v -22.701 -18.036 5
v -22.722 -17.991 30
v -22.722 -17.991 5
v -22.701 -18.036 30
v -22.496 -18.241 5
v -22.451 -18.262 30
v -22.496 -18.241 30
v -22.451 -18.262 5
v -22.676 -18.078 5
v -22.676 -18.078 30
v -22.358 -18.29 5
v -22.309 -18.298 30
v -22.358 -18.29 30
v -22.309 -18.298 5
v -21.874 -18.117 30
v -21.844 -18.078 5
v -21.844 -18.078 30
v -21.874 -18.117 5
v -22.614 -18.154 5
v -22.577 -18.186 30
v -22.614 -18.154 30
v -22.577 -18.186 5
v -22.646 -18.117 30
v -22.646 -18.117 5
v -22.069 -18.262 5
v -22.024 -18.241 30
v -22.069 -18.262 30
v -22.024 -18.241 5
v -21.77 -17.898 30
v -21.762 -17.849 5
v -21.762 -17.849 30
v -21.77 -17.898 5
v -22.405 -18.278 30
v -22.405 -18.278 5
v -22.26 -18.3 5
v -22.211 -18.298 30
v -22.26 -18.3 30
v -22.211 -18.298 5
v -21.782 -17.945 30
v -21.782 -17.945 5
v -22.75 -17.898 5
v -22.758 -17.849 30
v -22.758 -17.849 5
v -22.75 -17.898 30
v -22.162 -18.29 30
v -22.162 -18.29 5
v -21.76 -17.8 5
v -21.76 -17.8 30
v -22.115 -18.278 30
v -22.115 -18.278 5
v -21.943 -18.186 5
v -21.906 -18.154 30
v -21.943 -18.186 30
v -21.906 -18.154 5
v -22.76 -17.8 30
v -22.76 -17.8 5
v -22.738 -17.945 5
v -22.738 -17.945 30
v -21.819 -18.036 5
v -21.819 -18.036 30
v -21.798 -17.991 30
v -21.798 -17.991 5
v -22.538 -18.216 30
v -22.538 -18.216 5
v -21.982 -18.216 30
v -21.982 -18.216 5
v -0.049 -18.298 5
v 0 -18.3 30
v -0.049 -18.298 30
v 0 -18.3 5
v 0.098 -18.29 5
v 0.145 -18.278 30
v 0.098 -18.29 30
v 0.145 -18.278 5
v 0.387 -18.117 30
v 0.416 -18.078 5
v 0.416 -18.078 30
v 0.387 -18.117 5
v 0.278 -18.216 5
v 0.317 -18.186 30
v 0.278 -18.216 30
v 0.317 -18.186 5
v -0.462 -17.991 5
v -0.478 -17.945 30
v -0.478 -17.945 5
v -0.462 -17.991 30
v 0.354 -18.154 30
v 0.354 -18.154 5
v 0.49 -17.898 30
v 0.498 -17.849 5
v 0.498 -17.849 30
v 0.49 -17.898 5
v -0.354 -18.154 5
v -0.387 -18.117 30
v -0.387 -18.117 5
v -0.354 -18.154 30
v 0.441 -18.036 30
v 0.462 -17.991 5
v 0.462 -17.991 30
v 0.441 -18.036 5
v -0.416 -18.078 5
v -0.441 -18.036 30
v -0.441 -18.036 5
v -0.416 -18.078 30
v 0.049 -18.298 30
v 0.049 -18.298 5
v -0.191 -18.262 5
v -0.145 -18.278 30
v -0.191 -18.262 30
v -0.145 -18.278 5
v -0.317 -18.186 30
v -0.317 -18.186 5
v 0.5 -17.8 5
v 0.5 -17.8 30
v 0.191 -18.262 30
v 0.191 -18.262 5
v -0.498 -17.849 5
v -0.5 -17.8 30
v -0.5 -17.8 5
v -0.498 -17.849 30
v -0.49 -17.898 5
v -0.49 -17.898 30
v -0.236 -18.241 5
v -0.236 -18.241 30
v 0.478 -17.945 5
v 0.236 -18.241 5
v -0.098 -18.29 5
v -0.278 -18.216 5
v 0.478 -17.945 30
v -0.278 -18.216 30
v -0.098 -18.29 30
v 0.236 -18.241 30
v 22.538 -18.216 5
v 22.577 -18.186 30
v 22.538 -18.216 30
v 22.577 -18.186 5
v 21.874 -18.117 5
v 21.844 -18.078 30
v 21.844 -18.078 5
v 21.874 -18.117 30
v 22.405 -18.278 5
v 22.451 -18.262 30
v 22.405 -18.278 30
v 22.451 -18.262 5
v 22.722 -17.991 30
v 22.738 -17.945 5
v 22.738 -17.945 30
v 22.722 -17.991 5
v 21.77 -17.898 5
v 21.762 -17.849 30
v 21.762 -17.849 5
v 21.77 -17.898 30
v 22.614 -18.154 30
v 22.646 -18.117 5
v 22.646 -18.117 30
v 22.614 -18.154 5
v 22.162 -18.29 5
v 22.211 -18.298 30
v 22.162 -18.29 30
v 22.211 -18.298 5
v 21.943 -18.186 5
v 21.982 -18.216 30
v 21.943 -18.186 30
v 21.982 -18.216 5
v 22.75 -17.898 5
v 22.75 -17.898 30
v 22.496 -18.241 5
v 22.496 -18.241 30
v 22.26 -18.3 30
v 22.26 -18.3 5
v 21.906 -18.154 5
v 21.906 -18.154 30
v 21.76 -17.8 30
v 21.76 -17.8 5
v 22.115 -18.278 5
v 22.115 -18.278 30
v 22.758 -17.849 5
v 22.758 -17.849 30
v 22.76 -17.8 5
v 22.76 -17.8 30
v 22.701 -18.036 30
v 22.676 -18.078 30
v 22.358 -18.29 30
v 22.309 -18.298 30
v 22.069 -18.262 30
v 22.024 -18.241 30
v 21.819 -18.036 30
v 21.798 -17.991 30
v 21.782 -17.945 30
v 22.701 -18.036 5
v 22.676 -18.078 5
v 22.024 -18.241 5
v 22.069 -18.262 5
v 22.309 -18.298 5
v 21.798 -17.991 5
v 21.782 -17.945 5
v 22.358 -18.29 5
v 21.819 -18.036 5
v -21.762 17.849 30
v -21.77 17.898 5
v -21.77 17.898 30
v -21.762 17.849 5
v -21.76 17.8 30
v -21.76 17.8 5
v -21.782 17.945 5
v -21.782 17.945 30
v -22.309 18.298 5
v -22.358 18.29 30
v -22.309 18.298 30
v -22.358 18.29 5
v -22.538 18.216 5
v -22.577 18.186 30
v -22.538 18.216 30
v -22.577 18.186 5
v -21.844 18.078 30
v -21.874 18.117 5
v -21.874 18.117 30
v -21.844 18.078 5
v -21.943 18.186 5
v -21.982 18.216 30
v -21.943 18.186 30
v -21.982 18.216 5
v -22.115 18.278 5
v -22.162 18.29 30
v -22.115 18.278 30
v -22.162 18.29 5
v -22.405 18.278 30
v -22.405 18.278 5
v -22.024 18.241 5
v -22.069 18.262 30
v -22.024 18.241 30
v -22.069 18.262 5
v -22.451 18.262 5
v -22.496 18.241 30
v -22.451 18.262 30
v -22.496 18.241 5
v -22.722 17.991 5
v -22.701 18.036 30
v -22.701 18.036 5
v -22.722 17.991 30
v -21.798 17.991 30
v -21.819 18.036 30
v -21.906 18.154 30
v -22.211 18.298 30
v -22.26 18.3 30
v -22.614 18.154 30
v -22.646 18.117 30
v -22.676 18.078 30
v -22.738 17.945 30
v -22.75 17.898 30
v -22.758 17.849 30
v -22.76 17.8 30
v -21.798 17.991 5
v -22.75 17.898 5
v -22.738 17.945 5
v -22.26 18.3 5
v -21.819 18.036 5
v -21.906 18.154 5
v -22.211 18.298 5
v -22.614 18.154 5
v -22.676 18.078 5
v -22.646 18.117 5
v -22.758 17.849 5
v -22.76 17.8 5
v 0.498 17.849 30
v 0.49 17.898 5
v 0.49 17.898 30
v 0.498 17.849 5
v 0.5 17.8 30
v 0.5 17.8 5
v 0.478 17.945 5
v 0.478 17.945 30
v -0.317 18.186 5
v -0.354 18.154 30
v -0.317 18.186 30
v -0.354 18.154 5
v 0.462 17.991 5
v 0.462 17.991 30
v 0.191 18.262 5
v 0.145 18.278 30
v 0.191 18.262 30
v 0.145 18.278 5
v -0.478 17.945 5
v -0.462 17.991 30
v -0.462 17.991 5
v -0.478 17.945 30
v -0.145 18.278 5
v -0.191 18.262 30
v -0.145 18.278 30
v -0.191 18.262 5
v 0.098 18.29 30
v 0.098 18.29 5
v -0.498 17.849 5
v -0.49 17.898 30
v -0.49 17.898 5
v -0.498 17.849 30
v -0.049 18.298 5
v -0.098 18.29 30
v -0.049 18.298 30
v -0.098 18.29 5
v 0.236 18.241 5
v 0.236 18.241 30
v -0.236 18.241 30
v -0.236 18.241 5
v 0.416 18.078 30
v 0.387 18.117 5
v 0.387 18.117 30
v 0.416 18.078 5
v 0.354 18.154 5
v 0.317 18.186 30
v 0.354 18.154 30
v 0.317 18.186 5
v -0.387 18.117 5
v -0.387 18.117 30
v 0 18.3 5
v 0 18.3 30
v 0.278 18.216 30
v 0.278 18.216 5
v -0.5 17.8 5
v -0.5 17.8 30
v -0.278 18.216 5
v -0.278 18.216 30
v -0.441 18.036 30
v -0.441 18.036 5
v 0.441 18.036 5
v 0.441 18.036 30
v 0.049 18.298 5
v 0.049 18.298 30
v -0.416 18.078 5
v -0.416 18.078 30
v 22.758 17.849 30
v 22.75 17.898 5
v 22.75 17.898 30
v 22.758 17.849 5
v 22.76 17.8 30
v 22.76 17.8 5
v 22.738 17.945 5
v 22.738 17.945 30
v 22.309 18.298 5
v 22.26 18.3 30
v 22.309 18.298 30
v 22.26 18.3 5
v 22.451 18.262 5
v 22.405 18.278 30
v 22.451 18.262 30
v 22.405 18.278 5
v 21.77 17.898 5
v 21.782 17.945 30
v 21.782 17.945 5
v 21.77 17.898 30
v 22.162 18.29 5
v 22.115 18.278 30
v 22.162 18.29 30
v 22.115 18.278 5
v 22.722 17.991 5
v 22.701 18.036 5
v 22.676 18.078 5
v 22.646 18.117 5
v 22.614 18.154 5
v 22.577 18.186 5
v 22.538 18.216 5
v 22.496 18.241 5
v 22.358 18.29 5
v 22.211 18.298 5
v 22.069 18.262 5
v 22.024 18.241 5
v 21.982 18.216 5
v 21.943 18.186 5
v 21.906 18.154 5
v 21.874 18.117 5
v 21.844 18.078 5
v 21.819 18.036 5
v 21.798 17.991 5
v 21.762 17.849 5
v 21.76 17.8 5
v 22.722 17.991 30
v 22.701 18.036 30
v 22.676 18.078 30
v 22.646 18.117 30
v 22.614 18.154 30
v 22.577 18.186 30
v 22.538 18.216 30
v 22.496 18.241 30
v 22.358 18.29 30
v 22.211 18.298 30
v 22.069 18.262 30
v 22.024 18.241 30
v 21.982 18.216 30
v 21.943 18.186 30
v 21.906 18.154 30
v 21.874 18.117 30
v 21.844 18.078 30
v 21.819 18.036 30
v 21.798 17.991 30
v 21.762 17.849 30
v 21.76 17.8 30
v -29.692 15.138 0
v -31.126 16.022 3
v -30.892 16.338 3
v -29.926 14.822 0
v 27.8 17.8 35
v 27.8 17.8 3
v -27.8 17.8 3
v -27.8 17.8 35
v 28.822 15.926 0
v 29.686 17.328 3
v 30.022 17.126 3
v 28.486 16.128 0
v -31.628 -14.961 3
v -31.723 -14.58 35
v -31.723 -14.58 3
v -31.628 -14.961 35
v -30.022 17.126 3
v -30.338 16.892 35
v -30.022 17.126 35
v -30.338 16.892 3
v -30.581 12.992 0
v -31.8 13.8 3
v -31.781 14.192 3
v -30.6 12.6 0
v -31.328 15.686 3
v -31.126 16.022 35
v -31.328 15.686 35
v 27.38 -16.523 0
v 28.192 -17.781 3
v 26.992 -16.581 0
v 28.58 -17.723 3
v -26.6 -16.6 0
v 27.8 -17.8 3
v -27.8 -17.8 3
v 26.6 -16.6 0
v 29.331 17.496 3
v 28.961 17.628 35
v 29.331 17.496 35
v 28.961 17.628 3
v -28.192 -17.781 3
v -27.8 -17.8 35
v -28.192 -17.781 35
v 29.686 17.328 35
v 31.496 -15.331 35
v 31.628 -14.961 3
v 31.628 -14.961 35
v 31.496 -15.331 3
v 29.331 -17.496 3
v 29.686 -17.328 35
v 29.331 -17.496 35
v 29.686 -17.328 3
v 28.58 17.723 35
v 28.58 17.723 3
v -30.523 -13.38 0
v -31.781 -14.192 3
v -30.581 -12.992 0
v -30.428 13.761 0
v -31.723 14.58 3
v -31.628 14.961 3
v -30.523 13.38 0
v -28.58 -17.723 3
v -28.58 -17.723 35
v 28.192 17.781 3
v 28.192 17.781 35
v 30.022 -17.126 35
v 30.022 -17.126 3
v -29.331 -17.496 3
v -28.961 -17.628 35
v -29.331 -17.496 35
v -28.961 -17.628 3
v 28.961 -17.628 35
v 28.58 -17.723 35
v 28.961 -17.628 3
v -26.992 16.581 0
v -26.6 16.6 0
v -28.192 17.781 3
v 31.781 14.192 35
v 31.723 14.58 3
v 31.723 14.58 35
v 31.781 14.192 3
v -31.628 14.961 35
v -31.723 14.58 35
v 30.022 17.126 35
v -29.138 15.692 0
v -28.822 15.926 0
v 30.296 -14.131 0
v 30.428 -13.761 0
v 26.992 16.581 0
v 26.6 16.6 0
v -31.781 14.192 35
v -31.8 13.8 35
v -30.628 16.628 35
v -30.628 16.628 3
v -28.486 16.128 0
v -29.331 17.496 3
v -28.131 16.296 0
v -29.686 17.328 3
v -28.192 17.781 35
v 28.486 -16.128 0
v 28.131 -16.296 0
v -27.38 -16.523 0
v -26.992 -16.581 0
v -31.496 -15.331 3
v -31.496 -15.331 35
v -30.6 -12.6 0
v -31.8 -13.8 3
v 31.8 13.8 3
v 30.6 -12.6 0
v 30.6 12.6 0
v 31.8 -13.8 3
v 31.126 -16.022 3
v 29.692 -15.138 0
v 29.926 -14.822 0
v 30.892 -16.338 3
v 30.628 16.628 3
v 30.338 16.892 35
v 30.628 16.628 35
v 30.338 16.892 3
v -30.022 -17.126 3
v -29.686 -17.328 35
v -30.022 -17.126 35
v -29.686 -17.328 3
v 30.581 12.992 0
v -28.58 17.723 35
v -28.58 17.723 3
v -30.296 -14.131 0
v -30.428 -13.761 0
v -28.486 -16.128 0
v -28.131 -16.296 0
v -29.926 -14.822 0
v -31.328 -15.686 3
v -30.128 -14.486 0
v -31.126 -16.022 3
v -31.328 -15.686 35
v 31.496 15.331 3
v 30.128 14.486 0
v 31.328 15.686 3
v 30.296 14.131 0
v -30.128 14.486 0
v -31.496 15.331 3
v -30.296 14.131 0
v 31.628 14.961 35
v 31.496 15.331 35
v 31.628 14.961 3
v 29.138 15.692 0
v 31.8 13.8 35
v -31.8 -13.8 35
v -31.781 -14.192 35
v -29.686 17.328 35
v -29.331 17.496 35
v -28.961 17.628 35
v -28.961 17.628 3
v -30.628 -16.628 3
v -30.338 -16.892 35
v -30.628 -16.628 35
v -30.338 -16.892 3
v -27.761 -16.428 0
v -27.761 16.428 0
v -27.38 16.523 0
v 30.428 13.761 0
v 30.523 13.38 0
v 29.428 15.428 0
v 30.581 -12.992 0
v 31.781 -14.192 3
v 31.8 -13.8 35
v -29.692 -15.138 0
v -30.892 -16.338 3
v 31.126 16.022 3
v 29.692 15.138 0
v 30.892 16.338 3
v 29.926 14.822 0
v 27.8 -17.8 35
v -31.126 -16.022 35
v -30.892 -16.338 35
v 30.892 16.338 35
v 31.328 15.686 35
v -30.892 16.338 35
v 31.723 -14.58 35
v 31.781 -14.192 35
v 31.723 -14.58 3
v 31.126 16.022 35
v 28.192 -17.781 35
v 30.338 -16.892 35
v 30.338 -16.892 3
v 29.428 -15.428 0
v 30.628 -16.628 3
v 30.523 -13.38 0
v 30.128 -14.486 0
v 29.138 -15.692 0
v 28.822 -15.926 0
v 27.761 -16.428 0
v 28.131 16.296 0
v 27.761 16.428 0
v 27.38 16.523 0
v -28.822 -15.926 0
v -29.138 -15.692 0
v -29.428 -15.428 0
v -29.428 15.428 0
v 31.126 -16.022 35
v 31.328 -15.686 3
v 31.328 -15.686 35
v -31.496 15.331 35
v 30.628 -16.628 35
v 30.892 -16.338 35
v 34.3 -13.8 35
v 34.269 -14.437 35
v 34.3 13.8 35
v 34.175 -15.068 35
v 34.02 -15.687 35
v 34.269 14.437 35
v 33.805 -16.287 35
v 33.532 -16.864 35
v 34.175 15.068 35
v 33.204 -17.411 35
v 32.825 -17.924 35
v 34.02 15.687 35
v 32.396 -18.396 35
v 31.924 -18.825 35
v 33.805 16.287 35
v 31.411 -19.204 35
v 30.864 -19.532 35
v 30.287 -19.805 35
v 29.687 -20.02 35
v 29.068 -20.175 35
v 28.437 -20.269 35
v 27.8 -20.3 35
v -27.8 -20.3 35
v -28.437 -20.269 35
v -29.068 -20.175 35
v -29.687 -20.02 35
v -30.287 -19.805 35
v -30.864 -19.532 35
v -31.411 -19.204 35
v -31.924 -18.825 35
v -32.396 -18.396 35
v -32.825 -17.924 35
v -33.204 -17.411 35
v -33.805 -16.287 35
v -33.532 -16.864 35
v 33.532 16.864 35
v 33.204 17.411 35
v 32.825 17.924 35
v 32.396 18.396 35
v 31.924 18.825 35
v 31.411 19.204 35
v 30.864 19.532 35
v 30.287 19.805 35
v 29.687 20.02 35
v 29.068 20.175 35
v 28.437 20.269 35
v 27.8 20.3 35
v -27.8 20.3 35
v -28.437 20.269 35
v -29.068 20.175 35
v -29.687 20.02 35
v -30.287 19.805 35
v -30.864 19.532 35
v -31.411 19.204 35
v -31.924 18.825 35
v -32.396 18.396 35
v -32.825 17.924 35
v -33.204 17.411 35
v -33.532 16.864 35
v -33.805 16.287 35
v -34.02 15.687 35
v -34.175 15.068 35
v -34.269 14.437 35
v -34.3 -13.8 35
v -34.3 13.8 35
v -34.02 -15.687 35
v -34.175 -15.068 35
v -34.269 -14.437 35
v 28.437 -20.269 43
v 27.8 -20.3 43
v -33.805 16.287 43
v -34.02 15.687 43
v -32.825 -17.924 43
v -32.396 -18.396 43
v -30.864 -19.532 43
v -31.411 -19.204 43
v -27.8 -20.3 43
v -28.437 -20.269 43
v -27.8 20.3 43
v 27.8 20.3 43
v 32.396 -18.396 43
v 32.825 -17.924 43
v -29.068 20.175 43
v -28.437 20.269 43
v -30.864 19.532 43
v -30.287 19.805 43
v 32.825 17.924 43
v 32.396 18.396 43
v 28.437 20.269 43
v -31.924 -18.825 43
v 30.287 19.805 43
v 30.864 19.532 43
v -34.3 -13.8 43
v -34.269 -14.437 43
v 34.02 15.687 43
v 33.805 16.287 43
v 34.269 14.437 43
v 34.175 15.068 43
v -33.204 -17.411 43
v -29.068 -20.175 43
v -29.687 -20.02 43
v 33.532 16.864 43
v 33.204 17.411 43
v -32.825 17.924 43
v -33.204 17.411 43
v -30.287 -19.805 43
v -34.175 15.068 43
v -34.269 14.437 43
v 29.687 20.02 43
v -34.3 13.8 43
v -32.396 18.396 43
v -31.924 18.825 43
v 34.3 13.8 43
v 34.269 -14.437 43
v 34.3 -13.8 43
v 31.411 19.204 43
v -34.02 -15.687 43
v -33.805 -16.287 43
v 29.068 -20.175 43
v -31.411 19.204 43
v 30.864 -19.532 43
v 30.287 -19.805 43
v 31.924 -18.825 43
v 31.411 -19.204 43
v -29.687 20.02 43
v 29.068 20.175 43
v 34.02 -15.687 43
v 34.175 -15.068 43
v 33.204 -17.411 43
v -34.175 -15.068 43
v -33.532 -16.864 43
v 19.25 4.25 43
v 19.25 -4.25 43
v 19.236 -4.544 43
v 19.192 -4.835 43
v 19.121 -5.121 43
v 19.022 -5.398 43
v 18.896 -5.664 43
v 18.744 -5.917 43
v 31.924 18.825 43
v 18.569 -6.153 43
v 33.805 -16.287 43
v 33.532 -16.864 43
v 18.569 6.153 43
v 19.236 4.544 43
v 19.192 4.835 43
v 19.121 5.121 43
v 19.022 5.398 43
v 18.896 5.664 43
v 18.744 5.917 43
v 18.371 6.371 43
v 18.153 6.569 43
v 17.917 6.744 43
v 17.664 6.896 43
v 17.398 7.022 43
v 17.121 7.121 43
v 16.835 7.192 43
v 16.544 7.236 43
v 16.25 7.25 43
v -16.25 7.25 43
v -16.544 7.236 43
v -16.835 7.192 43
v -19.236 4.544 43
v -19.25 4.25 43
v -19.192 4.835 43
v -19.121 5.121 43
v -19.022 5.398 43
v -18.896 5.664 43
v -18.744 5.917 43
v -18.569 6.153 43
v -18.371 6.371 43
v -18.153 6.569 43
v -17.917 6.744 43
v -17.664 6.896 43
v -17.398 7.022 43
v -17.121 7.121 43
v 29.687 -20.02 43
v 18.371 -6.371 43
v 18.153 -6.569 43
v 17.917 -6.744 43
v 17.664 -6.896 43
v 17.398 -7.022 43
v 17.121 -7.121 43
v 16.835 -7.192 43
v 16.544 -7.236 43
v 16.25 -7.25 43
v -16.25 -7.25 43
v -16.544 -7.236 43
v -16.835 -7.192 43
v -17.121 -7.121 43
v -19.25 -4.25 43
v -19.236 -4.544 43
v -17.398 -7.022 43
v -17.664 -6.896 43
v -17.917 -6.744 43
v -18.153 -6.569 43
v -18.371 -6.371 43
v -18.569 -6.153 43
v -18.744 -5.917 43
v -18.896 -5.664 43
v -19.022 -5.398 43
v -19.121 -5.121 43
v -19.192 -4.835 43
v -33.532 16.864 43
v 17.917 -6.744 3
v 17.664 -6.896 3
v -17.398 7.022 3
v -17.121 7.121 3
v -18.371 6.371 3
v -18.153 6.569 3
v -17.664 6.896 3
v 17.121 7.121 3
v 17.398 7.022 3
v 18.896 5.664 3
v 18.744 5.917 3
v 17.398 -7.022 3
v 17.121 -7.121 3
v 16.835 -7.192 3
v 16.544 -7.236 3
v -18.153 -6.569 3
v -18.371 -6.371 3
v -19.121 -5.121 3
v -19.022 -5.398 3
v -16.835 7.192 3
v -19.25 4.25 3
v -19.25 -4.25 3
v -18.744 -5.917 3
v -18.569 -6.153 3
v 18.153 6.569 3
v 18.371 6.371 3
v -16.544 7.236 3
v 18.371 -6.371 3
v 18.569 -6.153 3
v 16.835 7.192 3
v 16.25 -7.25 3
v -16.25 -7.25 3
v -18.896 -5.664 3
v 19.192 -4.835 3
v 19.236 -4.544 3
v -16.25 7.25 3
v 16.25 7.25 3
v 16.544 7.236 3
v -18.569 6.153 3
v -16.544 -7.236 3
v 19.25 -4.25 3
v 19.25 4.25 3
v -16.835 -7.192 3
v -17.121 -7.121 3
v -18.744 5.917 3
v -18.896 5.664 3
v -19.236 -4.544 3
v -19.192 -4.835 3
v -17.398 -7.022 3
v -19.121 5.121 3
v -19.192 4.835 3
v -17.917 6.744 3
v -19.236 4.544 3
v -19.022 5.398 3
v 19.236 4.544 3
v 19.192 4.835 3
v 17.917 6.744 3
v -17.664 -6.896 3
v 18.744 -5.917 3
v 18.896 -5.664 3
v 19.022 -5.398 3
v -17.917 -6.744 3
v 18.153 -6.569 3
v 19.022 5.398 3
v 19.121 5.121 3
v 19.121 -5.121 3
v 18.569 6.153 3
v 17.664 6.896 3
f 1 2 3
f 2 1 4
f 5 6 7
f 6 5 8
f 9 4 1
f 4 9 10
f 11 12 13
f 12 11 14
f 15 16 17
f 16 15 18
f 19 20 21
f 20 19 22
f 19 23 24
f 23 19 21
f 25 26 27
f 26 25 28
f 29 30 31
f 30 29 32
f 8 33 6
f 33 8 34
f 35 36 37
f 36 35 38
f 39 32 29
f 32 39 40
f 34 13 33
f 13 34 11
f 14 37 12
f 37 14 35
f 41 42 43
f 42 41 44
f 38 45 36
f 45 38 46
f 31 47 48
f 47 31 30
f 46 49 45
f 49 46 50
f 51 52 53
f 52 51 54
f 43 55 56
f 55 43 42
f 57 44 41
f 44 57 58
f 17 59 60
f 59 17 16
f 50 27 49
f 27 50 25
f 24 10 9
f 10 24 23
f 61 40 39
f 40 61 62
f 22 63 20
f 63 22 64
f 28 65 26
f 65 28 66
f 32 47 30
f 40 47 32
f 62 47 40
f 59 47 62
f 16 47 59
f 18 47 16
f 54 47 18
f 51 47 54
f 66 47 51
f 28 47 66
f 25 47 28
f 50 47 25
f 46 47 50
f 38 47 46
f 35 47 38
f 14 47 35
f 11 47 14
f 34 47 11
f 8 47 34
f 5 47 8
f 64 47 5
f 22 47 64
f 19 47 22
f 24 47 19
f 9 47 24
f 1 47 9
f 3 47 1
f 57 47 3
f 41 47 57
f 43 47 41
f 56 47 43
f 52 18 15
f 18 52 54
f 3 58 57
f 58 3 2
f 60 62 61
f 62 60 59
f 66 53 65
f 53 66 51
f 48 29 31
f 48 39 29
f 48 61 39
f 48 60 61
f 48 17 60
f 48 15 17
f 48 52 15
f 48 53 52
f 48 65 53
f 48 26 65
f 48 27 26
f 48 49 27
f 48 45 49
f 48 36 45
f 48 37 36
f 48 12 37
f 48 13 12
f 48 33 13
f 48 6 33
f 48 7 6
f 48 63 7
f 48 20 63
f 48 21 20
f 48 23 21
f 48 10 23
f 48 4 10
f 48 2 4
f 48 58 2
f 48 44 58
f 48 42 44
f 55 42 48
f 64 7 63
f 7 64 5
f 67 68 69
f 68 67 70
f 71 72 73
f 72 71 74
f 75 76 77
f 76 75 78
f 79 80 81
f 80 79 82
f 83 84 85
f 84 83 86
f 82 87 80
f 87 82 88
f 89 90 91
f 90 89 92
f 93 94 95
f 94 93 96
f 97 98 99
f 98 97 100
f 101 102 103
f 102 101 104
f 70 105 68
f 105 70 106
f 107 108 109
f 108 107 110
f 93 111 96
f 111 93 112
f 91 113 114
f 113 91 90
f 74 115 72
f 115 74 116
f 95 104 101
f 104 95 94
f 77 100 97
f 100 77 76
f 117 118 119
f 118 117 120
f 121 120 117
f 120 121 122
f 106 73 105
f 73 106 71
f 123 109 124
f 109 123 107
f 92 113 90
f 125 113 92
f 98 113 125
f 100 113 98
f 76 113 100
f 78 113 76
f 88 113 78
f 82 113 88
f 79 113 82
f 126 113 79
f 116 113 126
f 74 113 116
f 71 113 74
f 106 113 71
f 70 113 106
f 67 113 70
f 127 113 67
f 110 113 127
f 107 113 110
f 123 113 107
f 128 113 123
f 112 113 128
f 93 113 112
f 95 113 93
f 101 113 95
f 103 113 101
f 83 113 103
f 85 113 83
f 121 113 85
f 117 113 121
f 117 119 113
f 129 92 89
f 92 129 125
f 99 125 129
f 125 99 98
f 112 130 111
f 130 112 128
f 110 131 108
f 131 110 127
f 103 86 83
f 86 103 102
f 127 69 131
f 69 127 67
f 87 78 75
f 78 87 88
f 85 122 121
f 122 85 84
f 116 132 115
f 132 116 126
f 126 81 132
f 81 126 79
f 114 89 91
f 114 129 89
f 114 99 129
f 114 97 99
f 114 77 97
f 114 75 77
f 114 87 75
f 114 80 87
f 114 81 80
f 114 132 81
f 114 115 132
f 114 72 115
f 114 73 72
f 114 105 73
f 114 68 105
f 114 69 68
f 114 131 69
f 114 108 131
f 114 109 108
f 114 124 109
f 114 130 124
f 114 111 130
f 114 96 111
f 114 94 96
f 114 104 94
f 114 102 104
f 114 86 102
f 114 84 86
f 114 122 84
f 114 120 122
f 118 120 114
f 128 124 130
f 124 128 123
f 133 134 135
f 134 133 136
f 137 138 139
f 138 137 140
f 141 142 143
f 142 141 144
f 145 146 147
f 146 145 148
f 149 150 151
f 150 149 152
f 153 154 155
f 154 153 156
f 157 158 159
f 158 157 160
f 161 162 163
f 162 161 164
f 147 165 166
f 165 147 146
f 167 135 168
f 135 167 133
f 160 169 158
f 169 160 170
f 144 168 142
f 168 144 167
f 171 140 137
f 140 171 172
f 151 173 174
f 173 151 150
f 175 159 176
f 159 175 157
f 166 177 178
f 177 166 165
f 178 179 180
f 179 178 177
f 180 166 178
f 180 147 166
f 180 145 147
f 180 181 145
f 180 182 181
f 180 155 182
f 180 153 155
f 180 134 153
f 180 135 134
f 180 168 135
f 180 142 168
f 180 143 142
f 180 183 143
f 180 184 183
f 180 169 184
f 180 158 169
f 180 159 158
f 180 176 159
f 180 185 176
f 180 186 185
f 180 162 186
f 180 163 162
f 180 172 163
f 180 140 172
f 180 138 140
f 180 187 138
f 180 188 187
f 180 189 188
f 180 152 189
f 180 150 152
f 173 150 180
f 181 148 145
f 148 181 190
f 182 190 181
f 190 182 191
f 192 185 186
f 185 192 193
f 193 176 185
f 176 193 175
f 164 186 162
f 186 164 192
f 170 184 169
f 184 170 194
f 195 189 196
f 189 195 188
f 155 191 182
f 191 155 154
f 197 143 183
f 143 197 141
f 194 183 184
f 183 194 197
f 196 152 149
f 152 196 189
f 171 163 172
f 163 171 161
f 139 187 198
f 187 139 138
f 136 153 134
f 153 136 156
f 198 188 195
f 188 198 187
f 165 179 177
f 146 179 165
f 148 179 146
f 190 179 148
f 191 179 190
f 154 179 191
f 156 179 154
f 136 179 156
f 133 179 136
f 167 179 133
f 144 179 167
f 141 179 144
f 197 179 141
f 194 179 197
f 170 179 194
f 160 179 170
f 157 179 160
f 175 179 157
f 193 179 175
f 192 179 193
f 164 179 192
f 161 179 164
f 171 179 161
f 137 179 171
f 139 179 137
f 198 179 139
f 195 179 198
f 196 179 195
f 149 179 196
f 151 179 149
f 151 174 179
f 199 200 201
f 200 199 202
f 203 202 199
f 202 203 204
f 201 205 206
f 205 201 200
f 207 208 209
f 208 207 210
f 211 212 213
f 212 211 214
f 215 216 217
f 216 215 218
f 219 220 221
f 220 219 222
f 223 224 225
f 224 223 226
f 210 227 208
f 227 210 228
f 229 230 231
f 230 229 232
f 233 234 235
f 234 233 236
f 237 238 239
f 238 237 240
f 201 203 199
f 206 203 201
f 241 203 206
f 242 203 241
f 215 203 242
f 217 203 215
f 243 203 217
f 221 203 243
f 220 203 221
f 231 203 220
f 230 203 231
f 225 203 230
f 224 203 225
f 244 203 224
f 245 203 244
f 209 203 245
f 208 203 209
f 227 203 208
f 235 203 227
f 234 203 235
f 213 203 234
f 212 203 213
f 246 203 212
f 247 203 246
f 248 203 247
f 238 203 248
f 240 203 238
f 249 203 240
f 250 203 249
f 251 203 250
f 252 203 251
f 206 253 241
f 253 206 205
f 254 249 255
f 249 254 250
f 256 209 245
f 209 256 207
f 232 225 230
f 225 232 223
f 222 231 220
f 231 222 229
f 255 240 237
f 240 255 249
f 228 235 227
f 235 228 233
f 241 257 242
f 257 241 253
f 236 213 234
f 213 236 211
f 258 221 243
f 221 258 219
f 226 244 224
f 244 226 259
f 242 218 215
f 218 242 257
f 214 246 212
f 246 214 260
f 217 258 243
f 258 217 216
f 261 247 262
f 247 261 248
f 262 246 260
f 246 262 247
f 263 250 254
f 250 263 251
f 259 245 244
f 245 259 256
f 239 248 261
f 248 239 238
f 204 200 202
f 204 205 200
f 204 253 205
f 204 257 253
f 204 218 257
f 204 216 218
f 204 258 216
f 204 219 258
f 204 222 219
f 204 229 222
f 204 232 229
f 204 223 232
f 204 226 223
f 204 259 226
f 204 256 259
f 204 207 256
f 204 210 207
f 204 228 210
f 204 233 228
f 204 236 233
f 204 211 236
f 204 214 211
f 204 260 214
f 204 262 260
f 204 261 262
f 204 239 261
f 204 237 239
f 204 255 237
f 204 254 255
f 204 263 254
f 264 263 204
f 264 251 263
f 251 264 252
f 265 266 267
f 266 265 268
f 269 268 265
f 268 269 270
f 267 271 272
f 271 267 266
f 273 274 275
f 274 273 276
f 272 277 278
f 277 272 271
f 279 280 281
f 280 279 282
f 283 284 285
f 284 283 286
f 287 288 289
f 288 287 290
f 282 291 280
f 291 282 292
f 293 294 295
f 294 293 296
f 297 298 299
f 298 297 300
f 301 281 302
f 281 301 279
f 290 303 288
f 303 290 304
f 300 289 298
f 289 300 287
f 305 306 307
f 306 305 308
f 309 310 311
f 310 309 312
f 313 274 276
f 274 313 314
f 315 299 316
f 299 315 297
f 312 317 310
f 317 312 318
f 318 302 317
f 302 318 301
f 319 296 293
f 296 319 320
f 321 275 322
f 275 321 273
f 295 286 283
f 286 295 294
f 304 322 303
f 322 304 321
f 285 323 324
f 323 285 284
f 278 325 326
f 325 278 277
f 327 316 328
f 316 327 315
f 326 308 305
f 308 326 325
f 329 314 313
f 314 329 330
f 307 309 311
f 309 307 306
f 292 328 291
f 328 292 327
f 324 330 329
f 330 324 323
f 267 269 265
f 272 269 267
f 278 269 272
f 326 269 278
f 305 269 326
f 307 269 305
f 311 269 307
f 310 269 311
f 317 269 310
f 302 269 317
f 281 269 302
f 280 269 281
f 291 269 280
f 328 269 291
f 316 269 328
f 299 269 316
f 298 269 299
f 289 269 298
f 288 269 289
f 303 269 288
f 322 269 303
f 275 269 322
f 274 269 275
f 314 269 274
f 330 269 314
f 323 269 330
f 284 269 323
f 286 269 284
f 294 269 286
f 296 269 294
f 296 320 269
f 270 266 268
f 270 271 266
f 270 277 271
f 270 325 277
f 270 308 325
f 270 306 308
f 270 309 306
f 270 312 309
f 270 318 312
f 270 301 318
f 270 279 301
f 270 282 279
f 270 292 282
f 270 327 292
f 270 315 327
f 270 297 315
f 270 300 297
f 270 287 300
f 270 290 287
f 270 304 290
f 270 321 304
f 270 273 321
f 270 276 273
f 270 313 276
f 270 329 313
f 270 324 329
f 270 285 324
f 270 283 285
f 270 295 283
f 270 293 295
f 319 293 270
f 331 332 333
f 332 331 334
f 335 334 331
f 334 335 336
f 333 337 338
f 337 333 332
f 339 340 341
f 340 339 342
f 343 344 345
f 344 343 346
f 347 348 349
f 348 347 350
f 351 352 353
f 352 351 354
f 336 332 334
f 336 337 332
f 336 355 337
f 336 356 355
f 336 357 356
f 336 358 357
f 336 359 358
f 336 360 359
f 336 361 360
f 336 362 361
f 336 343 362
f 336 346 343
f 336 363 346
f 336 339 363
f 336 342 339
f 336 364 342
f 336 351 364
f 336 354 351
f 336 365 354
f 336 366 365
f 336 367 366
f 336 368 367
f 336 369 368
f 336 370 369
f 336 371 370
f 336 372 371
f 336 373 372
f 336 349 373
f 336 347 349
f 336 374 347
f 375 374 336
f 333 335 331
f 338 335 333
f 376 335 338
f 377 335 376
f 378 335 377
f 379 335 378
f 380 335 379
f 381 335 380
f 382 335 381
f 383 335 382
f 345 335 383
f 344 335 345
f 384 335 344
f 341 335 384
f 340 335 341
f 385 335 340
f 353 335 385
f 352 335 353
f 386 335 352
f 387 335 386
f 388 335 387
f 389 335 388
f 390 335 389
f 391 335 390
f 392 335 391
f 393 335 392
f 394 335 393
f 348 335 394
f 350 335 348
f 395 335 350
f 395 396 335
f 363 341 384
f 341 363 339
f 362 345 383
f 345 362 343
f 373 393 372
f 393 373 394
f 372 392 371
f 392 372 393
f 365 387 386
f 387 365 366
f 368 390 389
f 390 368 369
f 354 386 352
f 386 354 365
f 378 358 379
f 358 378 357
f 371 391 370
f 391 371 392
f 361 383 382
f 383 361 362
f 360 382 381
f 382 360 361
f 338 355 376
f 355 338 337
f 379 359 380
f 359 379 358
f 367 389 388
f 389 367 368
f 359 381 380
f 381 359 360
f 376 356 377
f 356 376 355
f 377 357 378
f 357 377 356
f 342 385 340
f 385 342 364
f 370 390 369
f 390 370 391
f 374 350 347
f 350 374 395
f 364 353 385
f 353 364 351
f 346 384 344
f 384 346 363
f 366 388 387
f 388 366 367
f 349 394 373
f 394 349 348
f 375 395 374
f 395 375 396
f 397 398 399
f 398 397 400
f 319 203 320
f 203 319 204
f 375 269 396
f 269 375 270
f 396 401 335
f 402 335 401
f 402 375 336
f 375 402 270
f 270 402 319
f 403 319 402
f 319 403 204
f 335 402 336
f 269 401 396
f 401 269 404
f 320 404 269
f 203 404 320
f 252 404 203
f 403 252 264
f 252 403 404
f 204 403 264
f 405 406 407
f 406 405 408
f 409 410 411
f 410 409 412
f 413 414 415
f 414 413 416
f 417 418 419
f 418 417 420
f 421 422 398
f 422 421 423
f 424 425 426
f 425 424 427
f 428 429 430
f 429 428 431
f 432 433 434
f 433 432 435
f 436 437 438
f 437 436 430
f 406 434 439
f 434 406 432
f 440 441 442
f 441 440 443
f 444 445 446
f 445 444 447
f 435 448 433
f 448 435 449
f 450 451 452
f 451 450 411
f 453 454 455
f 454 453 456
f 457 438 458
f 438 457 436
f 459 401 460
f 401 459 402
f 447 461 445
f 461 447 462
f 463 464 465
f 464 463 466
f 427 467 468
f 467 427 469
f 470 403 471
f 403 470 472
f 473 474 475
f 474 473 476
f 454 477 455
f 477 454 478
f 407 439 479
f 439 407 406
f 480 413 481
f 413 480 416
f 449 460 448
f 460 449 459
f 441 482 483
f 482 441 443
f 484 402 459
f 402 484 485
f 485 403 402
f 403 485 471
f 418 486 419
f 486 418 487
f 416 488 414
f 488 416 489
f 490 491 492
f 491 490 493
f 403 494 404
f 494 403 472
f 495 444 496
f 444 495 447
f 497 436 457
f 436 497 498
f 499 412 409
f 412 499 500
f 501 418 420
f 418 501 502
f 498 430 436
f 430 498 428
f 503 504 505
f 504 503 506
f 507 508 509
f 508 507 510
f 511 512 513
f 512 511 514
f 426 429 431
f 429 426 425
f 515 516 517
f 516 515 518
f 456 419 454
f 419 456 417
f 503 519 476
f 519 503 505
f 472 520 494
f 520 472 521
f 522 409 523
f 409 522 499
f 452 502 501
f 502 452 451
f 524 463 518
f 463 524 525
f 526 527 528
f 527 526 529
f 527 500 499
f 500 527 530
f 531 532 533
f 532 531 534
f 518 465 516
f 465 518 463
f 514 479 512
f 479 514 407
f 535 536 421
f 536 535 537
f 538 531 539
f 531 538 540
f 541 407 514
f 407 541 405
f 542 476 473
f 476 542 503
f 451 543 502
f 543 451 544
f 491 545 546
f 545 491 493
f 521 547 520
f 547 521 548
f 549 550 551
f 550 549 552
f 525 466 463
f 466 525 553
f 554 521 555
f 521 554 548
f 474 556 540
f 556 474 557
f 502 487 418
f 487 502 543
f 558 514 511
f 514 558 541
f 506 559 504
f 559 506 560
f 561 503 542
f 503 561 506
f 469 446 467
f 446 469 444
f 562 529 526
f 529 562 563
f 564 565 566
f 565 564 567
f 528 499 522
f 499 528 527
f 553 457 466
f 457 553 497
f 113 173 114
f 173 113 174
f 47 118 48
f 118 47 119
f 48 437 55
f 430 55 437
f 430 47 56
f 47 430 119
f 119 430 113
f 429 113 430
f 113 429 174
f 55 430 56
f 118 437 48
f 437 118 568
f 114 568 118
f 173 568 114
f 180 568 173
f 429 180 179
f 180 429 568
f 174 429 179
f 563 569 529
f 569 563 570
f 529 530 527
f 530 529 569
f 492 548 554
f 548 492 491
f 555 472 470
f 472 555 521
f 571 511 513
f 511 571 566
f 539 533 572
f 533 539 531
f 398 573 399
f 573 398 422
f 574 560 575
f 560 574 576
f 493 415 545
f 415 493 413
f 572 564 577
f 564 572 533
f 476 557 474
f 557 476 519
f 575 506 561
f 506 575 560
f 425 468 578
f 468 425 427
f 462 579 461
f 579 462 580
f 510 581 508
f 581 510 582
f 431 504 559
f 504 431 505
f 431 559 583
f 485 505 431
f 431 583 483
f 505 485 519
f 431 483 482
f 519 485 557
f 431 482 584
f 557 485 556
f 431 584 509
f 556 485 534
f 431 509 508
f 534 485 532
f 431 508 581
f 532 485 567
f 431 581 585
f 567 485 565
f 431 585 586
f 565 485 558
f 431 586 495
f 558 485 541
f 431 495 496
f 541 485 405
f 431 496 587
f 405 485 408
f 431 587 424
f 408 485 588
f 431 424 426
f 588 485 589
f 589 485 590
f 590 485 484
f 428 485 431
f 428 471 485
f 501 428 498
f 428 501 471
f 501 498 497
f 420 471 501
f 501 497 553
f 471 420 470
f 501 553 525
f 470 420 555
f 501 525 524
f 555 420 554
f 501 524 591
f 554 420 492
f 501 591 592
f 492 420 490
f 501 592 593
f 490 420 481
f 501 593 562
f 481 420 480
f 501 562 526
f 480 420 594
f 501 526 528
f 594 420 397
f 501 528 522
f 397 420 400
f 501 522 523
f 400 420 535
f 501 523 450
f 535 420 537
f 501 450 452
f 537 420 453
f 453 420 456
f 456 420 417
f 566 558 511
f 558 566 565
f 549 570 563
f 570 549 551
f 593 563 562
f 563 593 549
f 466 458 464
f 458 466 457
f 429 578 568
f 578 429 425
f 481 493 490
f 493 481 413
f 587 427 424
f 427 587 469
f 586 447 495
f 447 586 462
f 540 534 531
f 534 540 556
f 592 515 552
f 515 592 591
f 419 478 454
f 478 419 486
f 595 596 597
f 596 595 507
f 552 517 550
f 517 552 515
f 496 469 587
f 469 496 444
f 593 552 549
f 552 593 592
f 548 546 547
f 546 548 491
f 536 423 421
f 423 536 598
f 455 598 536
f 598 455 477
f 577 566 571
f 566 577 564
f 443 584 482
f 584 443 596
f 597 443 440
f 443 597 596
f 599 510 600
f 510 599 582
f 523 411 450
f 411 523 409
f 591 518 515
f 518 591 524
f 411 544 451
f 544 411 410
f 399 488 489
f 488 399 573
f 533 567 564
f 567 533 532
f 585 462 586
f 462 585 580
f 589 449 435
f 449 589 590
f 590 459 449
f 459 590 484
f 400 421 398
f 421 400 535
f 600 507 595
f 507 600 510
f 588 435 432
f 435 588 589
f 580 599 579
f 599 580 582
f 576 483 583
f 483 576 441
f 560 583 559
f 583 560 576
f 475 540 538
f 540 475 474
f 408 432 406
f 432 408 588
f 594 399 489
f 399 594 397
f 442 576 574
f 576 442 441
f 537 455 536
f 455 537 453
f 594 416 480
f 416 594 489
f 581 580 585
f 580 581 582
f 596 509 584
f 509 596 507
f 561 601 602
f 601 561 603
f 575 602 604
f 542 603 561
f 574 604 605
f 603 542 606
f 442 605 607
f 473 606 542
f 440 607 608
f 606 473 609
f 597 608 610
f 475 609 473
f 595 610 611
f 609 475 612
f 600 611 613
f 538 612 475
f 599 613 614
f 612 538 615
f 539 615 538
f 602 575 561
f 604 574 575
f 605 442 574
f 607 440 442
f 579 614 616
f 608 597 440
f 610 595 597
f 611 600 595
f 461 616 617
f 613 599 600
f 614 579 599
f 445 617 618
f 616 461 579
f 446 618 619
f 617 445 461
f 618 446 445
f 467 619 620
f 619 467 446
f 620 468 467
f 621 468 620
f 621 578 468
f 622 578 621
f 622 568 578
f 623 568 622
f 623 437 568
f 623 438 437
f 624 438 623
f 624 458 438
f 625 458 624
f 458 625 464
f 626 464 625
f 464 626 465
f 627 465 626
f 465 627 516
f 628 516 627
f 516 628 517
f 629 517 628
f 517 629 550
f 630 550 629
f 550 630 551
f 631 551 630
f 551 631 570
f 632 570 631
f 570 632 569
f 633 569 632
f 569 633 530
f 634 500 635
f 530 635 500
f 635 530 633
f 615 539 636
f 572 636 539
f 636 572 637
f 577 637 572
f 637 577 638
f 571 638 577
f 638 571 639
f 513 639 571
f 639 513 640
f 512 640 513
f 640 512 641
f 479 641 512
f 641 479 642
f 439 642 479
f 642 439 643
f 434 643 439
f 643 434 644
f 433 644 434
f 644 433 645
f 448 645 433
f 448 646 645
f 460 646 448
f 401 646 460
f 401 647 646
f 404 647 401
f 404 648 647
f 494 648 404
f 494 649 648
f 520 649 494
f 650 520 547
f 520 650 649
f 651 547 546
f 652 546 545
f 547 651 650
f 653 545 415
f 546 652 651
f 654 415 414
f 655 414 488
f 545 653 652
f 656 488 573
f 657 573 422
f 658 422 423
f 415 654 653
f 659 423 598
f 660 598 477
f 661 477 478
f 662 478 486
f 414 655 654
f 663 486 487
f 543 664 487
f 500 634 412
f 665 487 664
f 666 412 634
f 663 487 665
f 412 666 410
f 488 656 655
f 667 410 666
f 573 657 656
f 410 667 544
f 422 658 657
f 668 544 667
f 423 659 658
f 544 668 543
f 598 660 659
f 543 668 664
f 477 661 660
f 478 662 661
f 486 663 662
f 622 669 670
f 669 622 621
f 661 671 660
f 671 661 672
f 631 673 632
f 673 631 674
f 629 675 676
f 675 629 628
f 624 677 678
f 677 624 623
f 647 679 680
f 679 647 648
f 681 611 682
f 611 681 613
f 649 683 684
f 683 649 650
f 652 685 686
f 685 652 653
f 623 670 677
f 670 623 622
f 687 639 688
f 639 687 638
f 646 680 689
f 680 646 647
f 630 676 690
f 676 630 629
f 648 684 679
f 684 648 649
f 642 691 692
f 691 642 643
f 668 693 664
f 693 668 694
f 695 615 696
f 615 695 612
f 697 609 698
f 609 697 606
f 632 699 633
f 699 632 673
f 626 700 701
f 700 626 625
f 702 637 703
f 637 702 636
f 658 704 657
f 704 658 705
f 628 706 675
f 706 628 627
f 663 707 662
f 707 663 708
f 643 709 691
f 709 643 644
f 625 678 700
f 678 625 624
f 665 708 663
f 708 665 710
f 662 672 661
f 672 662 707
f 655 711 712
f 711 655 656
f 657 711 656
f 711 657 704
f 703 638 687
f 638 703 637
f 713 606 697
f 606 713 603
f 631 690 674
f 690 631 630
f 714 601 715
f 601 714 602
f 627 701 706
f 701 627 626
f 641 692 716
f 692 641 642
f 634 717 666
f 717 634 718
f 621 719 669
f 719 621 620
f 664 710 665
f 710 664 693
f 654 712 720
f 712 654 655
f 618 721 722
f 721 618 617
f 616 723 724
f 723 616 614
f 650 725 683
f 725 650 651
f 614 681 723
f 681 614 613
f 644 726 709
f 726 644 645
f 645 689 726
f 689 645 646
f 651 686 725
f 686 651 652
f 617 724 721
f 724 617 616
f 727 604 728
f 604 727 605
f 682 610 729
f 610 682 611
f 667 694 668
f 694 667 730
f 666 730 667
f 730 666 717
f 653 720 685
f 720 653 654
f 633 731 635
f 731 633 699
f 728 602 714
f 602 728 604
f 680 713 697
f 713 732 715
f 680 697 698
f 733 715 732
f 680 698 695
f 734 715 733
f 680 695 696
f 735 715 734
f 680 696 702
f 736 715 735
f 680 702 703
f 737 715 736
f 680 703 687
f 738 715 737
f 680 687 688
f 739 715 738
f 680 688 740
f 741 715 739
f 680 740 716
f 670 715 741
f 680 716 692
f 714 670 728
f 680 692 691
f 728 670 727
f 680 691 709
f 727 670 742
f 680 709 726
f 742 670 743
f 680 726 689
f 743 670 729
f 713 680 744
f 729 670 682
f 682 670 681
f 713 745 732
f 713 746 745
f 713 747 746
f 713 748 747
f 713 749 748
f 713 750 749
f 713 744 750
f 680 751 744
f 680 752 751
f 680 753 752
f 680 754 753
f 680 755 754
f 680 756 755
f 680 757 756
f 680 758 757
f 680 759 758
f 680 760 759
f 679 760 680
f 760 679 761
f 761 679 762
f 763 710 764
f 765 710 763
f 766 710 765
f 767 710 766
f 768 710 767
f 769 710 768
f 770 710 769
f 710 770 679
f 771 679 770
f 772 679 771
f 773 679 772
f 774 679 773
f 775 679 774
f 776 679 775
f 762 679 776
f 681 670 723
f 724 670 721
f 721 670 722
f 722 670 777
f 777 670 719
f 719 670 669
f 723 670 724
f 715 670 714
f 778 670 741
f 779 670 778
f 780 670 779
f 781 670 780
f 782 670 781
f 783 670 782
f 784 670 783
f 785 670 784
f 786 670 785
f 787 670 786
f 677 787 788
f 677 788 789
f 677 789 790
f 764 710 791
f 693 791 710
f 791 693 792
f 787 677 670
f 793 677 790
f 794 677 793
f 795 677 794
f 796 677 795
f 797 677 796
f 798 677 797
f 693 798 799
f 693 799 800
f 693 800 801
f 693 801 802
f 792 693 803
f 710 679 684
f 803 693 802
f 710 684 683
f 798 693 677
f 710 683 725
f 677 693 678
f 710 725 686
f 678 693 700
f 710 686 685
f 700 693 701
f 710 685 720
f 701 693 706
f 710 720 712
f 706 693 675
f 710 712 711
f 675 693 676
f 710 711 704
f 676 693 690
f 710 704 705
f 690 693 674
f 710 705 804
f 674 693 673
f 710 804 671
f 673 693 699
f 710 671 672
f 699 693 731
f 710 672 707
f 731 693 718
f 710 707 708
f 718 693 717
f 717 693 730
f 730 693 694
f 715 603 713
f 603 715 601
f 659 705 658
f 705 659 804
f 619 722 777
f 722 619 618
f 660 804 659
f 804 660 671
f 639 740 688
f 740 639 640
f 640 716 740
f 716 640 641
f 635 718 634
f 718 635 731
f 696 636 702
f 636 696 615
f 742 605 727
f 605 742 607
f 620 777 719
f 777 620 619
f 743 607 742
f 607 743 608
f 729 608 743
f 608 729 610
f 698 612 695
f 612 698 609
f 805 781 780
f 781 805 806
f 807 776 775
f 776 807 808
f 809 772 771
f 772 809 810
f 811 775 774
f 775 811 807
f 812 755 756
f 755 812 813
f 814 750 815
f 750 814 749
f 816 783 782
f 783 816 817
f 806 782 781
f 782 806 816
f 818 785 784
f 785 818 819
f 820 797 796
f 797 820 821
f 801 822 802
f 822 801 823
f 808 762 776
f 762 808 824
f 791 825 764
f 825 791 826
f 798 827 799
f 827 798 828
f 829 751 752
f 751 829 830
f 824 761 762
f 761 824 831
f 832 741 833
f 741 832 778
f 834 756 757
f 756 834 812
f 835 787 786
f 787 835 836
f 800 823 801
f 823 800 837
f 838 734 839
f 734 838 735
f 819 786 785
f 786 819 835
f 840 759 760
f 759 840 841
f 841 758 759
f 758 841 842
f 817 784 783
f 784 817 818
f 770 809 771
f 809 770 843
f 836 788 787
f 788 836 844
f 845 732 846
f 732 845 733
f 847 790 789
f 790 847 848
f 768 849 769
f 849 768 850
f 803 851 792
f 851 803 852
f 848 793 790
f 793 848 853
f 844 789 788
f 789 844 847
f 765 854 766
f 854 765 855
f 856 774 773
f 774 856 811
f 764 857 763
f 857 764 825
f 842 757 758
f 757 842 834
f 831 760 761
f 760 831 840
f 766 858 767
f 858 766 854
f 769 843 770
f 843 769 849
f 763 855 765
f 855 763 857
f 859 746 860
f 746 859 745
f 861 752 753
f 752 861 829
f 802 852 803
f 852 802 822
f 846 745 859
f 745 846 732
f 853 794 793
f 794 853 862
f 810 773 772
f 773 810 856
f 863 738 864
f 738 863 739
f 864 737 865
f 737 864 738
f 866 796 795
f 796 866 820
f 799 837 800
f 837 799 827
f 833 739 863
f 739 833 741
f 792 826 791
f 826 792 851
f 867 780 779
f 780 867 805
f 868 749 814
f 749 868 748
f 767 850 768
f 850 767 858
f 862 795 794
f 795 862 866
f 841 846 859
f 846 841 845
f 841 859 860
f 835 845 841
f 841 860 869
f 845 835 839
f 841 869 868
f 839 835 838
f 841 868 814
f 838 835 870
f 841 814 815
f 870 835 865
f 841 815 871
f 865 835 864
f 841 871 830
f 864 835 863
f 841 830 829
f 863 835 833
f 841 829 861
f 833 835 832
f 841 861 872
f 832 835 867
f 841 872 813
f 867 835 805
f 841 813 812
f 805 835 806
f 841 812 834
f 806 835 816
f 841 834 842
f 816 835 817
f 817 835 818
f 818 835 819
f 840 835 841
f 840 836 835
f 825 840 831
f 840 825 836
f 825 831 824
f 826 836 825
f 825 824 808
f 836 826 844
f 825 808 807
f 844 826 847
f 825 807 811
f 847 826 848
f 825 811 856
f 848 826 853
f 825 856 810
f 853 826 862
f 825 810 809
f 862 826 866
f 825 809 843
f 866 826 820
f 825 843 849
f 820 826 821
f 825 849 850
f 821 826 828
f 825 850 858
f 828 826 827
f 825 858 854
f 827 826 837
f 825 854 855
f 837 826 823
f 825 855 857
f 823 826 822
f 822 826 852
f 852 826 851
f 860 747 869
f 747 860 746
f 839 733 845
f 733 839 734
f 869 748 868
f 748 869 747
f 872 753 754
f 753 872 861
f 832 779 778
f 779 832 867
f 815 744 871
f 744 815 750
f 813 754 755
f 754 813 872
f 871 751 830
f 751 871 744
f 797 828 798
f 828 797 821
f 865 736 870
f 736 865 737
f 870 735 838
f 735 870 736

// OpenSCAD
// ============================================================
// 2022 Toyota 4Runner (5th gen) — Key Fob Holder
// Drop-in insert for the coin pocket on the center console
// (the small rubber-bottomed cubby next to the shifter).
// Holds the smart key fob (HYQ14FBA/FBB) standing upright.
//
// IMPORTANT: verify the two POCKET measurements below with
// calipers before printing — trim pockets vary slightly and
// these defaults are best estimates. Everything is parametric.
//
// Print: PETG or ABS/ASA recommended (PLA can warp in a hot
// car). 0.2mm layers, 3 walls, 15% infill, no supports.
// Print in the orientation the STL comes in (slot up).
// ============================================================

// ---------- Coin pocket (measure yours!) ----------
pocket_length   = 64;    // longer axis of the pocket opening, mm
pocket_width    = 36;    // shorter axis of the pocket opening, mm
insert_depth    = 35;    // how far the insert reaches into the pocket
fit_clearance   = 0.4;   // total clearance (both sides combined)
bottom_taper    = 1.2;   // inset at the very bottom, eases insertion
corner_radius   = 4;     // pocket corner rounding

// ---------- Fob slot (HYQ14FBA smart key ~72 x 36.5 x 12) ----------
slot_length     = 38.5;  // fob width + clearance
slot_width      = 14.5;  // fob thickness (incl. buttons) + clearance
slot_depth      = 40;    // how deep the fob sinks in (fob sticks out ~32)
slot_radius     = 3;     // slot corner rounding

// ---------- Top collar (sits on the pocket rim) ----------
lip             = 2.5;   // flange overhang past the pocket opening
collar_height   = 8;     // height of the collar above the rim

// ---------- Anti-rattle ribs ----------
rib_d           = 1.0;   // rib diameter; protrudes rib_d/2, crushes on insert
rib_count       = 3;     // ribs per long face

$fn = 64;
eps = 0.01;

body_l  = pocket_length - fit_clearance;
body_w  = pocket_width  - fit_clearance;
total_h = insert_depth + collar_height;
floor_t = total_h - slot_depth;
assert(floor_t >= 2, "slot_depth too deep — leave at least 2mm of floor");

// 2D rounded rectangle centered at origin
module rrect(l, w, r) {
    offset(r) square([l - 2*r, w - 2*r], center = true);
}

// rib x-positions, evenly spread over the middle 70% of the long face
function rib_x(i) = (rib_count == 1) ? 0
    : -0.35*body_l + i * (0.7*body_l / (rib_count - 1));

module part() {
    difference() {
        union() {
            // short lead-in chamfer at the bottom for easy entry
            hull() {
                linear_extrude(eps)
                    rrect(body_l - 2*bottom_taper, body_w - 2*bottom_taper, corner_radius);
                translate([0, 0, 3])
                    linear_extrude(eps)
                        rrect(body_l, body_w, corner_radius);
            }
            // straight-walled lower section
            translate([0, 0, 3])
                linear_extrude(insert_depth - 3)
                    rrect(body_l, body_w, corner_radius);
            // collar that overhangs the pocket rim
            translate([0, 0, insert_depth])
                linear_extrude(collar_height)
                    rrect(body_l + 2*lip, body_w + 2*lip, corner_radius + lip);
            // vertical crush ribs on both long faces
            for (side = [-1, 1], i = [0 : rib_count - 1])
                translate([rib_x(i), side * body_w/2, 5])
                    cylinder(h = insert_depth - 10, d = rib_d);
        }
        // fob slot
        translate([0, 0, total_h - slot_depth])
            linear_extrude(slot_depth + eps)
                rrect(slot_length, slot_width, slot_radius);
    }
}

part();
